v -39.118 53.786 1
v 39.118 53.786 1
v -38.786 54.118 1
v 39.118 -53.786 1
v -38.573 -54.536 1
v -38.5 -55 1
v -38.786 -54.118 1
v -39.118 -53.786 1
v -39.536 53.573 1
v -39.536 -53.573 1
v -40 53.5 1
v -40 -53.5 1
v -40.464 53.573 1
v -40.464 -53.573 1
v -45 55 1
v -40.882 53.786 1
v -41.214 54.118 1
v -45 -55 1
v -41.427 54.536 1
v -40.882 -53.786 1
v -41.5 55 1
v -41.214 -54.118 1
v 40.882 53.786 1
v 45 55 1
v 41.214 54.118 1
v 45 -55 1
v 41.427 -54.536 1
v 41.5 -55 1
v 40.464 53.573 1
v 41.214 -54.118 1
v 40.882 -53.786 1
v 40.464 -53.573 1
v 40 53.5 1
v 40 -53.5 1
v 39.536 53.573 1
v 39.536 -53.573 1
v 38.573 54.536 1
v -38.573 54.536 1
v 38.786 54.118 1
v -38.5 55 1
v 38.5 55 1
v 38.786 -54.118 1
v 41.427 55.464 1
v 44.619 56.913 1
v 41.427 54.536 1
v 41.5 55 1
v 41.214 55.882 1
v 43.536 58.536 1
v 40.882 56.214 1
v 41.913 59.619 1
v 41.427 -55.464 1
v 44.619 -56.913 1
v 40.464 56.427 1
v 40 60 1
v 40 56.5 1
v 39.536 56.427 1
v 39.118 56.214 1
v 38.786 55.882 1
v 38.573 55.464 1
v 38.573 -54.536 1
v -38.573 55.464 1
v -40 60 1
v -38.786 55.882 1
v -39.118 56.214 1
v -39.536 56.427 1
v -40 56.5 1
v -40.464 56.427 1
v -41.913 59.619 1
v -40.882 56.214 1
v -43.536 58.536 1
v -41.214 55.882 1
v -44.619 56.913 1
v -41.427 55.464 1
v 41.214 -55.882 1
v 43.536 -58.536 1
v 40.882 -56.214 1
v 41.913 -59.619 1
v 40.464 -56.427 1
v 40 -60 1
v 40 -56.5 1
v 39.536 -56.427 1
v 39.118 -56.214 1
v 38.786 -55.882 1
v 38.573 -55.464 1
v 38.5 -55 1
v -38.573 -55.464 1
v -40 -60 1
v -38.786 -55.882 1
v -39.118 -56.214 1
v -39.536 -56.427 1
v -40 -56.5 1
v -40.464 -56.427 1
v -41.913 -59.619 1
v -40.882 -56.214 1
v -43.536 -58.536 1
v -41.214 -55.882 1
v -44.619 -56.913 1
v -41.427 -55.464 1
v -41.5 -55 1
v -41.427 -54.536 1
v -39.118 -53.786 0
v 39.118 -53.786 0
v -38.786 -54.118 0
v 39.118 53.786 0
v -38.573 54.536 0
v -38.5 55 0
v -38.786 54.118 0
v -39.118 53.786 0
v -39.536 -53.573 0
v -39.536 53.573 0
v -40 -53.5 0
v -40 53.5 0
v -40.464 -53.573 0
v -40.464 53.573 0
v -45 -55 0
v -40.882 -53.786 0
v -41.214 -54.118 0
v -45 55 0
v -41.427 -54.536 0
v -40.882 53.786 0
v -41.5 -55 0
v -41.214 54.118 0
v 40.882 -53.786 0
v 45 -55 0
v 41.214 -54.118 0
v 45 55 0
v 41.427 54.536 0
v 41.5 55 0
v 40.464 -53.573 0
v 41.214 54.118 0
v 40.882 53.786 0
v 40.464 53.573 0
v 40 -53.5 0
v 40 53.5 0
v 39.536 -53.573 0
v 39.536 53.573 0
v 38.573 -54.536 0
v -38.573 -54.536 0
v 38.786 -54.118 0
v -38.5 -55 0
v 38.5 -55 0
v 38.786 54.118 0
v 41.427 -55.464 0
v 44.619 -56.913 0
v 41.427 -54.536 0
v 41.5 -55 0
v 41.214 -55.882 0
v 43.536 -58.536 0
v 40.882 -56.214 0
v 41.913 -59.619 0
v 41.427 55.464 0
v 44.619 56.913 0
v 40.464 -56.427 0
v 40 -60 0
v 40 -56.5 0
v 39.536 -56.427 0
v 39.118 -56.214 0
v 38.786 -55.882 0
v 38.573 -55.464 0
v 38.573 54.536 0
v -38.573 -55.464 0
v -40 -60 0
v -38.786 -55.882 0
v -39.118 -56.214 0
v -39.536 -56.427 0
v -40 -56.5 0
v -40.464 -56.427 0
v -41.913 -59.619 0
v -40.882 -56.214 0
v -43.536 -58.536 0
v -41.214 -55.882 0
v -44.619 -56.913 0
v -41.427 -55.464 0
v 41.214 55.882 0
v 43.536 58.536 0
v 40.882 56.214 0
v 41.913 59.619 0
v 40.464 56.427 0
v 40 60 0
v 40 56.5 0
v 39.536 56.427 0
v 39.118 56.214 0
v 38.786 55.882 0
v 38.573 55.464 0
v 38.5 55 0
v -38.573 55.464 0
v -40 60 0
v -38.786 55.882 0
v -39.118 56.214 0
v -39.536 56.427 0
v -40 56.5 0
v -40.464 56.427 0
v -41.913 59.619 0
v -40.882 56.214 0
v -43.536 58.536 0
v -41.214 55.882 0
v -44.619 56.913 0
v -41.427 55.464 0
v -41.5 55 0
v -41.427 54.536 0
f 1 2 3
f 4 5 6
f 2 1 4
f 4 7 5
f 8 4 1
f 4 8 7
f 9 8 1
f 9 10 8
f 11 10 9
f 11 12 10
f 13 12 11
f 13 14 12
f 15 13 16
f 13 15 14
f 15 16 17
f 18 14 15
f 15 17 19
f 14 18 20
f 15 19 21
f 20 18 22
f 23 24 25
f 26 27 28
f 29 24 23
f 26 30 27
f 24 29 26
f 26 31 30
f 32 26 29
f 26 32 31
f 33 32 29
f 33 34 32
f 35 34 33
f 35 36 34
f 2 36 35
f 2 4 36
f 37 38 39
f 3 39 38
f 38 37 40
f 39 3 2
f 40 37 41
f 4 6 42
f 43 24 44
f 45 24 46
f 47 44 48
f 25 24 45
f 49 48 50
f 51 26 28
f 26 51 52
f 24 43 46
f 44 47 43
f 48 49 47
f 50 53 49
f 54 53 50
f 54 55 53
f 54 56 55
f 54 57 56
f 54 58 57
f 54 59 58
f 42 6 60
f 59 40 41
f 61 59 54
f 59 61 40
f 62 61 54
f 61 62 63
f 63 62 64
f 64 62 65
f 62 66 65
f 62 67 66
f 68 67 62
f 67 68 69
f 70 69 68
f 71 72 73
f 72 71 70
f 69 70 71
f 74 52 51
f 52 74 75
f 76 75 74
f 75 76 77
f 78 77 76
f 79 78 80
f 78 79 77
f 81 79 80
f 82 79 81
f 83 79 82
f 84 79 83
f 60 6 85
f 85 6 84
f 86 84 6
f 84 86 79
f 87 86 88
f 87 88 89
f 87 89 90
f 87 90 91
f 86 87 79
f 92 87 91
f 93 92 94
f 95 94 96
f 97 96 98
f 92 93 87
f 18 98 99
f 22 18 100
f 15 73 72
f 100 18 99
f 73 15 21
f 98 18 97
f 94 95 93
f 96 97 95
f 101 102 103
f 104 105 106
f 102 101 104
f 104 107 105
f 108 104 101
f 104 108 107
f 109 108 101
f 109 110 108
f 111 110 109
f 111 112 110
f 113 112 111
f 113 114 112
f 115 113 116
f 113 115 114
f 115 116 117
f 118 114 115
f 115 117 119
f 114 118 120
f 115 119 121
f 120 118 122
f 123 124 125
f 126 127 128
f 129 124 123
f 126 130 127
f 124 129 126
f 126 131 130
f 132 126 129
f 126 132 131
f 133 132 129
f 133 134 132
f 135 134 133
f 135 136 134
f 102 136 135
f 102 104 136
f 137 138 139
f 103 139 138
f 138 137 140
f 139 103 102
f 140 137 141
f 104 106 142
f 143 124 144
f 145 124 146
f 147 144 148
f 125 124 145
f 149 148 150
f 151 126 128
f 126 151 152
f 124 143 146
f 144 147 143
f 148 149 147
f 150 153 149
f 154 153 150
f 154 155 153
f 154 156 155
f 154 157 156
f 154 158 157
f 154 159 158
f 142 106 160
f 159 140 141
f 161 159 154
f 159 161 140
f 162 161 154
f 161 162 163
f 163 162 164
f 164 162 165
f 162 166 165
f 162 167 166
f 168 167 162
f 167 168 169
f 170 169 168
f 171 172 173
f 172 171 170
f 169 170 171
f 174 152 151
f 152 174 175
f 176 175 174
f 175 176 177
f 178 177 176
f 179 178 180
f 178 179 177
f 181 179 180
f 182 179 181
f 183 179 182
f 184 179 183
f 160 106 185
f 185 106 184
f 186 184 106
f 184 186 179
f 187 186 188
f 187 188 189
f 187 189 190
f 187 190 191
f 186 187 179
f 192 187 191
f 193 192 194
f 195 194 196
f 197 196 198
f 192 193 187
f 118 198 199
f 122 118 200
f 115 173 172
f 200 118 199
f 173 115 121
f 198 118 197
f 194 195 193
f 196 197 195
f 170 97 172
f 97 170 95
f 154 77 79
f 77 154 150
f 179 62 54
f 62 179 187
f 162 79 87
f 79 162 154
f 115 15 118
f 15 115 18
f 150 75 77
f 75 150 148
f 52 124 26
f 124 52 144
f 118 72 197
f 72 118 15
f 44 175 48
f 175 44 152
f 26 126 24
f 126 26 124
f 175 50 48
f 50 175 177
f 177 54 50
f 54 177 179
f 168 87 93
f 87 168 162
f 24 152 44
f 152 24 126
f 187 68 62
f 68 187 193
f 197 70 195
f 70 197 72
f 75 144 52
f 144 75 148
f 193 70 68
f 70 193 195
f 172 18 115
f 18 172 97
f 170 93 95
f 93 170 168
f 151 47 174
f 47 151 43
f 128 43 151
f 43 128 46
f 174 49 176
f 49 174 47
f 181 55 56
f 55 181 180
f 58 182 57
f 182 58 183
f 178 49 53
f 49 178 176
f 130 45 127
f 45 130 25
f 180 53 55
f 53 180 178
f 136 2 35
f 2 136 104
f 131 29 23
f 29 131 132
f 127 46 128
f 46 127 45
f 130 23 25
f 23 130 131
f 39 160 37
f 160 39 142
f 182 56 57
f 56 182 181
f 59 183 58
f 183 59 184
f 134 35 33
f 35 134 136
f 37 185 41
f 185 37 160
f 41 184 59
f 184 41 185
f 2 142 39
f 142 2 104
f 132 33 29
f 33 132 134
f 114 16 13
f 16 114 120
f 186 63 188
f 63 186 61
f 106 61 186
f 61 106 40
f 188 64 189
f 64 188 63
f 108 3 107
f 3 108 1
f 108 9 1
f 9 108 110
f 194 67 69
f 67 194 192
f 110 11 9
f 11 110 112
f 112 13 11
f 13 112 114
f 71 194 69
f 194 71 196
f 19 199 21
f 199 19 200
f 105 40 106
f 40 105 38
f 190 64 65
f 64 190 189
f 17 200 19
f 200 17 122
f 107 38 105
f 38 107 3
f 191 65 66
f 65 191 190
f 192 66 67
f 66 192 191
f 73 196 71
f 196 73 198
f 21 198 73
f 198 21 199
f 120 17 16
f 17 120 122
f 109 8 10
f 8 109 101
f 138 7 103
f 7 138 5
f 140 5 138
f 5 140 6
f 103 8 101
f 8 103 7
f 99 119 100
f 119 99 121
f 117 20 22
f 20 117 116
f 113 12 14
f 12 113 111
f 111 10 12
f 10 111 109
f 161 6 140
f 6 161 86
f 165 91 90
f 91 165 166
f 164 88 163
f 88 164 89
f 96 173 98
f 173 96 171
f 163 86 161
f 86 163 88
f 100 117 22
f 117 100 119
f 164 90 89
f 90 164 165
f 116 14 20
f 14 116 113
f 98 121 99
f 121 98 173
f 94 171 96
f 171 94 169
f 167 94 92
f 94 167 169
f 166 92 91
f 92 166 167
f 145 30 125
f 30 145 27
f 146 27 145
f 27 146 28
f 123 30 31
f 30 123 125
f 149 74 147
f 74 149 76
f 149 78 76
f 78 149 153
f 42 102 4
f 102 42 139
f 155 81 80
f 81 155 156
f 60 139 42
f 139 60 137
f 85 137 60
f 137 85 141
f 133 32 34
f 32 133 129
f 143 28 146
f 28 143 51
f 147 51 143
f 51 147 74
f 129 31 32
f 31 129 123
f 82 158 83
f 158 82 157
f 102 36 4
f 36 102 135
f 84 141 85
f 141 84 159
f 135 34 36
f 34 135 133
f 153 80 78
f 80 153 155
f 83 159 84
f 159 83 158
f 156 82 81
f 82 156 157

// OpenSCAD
// file: flight_controller_vert_screw_holes.scad
module flight_controller_vert_screw_holes(hole_x, hole_y, bore_diameter, height, fn) {
    translate([hole_x/2, hole_y/2, 0])
        cylinder(d=bore_diameter, h=height, $fn=fn);
    
    translate([-hole_x/2, hole_y/2, 0])
        cylinder(d=bore_diameter, h=height, $fn=fn);
    
    translate([-hole_x/2, -hole_y/2, 0])
        cylinder(d=bore_diameter, h=height, $fn=fn);
    
    translate([hole_x/2, -hole_y/2, 0])
        cylinder(d=bore_diameter, h=height, $fn=fn);
}
// file: flight_controller_face_panel_base.scad
use <./flight_controller_vert_screw_holes.scad>;

module flight_controller_face_panel_base(hole_x, hole_y, post_diameter, bore_diameter, case_floor_thickness, z_pos, fn) {
    translate([0,0,0])
        difference() {
            hull() {
            translate([hole_x/2, hole_y/2, 0])
                    cylinder(d=post_diameter, h=case_floor_thickness, $fn=fn);
                
                translate([-hole_x/2, hole_y/2, 0])
                    cylinder(d=post_diameter, h=case_floor_thickness, $fn=fn);
                
                translate([-hole_x/2, -hole_y/2, 0])
                    cylinder(d=post_diameter, h=case_floor_thickness, $fn=fn);
                
                translate([hole_x/2, -hole_y/2, 0])
                    cylinder(d=post_diameter, h=case_floor_thickness, $fn=fn);
        }
        flight_controller_vert_screw_holes(hole_x, hole_y, bore_diameter, case_floor_thickness, fn);      
    }
}
// file: flight_controller_box_params.scad
function flight_controller_box_params() = [
    ["hole_x", 80],
    ["hole_y", 110],
    ["post_diameter", 10],
    ["bore_diameter", 3],
    ["case_z", 45],
    ["case_floor_thickness", 1.5],
    ["case_wall_thickness", 12],
    ["case_wall_height", 11.5],
    ["fn", 20],
];

// usage: find(params, "hole_x");
function find(h,k)= h[search([k], h, 1)[0]][1];
// main file
use <./flight_controller_box_params.scad>;
use <./flight_controller_face_panel_base.scad>;
use <./flight_controller_vert_screw_holes.scad>;

module flight_controller_top_panel(hole_x, hole_y, post_diameter, bore_diameter, z_pos, case_floor, fn) {
    translate([0, 0, z_pos])
        difference(){
            flight_controller_face_panel_base(hole_x, hole_y, post_diameter, bore_diameter, case_floor, fn);
            flight_controller_vert_screw_holes(hole_x, hole_y, bore_diameter, case_floor, fn);
        };
}

module flight_controller_top_panel_part() {
    params = flight_controller_box_params();
    hole_x = find(params, "hole_x");
    hole_y = find(params, "hole_y");
    post_diameter = find(params, "post_diameter");
    bore_diameter = find(params, "bore_diameter");
    //case_z = find(params, "case_z");
    case_floor = find(params, "case_floor");
    fn = find(params, "fn");
    flight_controller_top_panel(hole_x, hole_y, post_diameter, bore_diameter, 0, case_floor, fn);
}

flight_controller_top_panel_part();
